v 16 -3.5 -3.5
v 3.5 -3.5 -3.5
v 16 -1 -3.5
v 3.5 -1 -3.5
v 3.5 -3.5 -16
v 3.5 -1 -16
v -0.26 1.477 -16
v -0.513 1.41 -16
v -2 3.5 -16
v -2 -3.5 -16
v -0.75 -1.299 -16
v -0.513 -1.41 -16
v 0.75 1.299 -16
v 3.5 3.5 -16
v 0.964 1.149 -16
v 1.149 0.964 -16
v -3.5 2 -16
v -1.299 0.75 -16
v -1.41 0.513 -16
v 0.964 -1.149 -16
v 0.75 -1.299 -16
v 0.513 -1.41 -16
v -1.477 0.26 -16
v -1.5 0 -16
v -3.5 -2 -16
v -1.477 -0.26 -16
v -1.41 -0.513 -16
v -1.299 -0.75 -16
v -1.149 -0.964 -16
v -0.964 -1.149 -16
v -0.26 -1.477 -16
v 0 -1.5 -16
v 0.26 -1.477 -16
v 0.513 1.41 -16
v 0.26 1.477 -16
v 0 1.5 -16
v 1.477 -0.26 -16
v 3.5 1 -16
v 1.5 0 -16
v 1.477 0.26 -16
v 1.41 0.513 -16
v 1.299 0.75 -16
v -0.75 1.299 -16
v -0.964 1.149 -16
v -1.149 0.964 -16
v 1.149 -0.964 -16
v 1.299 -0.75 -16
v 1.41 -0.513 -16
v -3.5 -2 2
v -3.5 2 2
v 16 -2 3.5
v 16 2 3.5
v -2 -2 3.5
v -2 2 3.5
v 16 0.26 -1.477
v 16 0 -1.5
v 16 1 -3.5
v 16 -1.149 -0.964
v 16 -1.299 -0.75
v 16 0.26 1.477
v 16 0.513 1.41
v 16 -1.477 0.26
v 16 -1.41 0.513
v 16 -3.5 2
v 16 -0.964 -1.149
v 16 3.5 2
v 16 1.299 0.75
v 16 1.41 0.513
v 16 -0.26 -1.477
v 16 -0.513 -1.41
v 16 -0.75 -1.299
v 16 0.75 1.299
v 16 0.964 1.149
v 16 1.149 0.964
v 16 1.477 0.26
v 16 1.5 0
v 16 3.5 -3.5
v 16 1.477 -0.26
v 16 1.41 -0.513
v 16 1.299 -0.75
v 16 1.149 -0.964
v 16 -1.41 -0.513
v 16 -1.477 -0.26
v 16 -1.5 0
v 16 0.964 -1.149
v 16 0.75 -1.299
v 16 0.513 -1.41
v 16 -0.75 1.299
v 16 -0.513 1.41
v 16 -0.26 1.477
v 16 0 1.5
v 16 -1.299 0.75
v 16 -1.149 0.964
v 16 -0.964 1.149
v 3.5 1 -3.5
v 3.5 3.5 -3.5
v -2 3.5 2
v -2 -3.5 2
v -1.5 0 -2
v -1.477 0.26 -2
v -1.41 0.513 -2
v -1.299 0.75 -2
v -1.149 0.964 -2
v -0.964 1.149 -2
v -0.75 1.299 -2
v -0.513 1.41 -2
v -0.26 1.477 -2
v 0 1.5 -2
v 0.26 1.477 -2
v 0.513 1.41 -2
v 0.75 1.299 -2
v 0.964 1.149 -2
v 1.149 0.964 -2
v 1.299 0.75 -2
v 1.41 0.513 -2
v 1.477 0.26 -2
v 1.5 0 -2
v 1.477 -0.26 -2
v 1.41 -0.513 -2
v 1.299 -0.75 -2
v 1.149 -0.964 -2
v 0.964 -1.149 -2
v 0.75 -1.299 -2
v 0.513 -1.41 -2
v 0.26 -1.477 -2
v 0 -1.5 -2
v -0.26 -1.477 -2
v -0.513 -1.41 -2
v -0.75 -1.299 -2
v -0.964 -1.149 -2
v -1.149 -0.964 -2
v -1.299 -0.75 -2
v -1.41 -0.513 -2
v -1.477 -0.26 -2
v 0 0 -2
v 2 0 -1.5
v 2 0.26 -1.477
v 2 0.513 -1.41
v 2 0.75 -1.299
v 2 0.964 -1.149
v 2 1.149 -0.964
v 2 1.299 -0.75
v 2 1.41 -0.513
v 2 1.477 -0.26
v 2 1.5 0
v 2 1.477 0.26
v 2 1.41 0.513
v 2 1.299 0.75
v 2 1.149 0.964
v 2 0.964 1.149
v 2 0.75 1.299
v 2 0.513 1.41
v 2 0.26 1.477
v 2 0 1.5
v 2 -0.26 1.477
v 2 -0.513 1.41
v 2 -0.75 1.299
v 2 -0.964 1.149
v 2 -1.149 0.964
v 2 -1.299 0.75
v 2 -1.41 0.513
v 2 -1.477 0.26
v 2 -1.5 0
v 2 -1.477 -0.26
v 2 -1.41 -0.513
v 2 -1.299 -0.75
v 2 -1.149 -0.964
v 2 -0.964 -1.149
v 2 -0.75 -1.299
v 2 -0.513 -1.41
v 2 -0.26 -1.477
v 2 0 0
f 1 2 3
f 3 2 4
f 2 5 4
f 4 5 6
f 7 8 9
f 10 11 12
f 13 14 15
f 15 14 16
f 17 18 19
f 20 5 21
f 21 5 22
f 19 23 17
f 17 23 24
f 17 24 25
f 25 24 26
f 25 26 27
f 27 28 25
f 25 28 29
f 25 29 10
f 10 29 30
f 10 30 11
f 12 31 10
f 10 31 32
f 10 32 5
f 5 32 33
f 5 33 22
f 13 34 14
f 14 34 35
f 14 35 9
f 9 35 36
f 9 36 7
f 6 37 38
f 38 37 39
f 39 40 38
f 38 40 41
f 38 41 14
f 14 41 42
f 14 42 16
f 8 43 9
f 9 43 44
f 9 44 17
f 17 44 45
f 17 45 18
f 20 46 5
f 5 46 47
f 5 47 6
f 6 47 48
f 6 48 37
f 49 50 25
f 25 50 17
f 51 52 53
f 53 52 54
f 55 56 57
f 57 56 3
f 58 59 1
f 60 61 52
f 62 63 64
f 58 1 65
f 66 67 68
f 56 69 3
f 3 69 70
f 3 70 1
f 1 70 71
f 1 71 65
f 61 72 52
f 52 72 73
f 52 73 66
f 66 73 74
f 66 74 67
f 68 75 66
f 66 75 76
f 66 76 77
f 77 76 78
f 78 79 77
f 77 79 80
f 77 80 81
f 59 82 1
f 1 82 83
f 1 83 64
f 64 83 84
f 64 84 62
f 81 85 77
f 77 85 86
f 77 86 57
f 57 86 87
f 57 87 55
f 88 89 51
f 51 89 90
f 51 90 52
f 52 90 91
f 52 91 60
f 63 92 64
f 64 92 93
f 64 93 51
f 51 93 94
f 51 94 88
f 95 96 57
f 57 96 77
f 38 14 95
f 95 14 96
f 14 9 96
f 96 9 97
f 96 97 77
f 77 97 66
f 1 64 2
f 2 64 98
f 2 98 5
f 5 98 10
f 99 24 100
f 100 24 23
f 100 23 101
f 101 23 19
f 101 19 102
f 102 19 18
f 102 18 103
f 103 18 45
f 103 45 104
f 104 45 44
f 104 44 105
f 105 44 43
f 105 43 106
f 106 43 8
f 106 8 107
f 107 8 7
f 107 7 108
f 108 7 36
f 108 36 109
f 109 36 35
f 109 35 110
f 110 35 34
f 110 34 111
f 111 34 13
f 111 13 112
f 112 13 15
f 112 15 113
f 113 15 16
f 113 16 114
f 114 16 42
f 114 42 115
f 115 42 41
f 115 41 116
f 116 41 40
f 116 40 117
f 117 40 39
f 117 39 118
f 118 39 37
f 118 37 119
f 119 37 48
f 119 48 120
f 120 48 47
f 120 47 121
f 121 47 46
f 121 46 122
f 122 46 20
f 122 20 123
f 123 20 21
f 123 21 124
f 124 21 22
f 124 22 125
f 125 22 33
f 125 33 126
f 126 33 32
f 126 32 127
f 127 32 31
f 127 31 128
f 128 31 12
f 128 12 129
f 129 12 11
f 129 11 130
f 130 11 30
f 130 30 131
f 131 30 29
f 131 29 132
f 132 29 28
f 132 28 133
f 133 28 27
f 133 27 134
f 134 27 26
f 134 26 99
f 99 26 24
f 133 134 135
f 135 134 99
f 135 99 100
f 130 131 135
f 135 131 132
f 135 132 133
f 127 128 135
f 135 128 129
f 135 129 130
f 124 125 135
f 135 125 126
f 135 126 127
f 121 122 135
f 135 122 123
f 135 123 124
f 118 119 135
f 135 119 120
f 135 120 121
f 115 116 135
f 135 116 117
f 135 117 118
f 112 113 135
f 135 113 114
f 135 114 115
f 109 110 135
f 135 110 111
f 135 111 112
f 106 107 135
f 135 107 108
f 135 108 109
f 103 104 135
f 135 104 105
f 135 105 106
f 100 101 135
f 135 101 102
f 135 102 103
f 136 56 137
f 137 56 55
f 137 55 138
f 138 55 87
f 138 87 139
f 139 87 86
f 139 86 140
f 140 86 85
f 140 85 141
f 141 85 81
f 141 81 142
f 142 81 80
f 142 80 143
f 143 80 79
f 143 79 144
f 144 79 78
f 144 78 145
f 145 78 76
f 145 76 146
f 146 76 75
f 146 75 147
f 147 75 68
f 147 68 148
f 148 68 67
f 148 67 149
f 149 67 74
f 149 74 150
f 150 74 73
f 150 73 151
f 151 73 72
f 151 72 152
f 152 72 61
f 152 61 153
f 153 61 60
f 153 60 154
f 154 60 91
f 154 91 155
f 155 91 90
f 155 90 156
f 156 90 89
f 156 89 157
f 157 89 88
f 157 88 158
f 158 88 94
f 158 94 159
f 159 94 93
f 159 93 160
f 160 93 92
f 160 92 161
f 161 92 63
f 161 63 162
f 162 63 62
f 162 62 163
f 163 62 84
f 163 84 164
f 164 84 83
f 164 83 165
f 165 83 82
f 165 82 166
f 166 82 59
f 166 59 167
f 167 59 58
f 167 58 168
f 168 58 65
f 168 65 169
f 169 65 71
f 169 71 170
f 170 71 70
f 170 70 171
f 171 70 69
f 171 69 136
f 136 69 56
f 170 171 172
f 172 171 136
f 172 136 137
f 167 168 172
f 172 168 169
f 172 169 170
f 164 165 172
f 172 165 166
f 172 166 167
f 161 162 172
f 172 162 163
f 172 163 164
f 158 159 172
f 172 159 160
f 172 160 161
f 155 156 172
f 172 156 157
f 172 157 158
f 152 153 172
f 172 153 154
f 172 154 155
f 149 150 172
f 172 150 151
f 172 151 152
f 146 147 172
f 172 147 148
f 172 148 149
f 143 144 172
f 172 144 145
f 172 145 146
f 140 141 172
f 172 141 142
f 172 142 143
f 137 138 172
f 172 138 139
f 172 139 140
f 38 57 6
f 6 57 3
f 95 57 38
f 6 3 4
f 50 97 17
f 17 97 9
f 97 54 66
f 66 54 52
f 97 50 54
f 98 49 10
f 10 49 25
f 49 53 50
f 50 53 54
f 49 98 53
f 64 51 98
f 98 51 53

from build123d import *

# Parameters (mm, degrees)
BOSS_EXTRUDE1_DEPTH = 3.5
SKETCH2_R           = 1.5
CUT_EXTRUDE1_DEPTH  = 14
SKETCH3_R           = 1.5
CUT_EXTRUDE2_DEPTH  = 14
BOSS_EXTRUDE2_DEPTH = 1
CHAMFER1_SIZE       = 1.5


with BuildPart() as part:
    # Sketch1 → Boss-Extrude1 (new, symmetric)
    with BuildSketch(Plane(origin=(0, 0, 0), x_dir=(1, 0, 0), z_dir=(0, 1, 0))):
        Polygon((-3.5, 16), (-3.5, -3.5), (16, -3.5), (16, 3.5), (3.5, 3.5), (3.5, 16), align=None)
    extrude(amount=BOSS_EXTRUDE1_DEPTH, both=True)

    # Sketch2 → Cut-Extrude1 (cut)
    with BuildSketch(Plane(origin=(0, 0, -16), x_dir=(-1, 0, 0), z_dir=(0, 0, -1))):
        Circle(SKETCH2_R)
    extrude(amount=-CUT_EXTRUDE1_DEPTH, mode=Mode.SUBTRACT)

    # Sketch3 → Cut-Extrude2 (cut)
    with BuildSketch(Plane(origin=(16, 0, 0), x_dir=(0, 0, -1), z_dir=(1, 0, 0))):
        Circle(SKETCH3_R)
    extrude(amount=-CUT_EXTRUDE2_DEPTH, mode=Mode.SUBTRACT)

    # Sketch4 → Boss-Extrude2 (add, symmetric)
    with BuildSketch(Plane(origin=(0, 0, 0), x_dir=(1, 0, 0), z_dir=(0, 1, 0))):
        Polygon((3.5, 16), (16, 3.5), (3.5, 3.5), align=None)
    extrude(amount=BOSS_EXTRUDE2_DEPTH, both=True)

    # Chamfer1
    chamfer1_edges = [part.edges().sort_by_distance(p)[0] for p in [
        (-3.5, 0, 3.5),
        (6.25, 3.5, 3.5),
        (6.25, -3.5, 3.5),
        (-3.5, -3.5, -6.25),
        (-3.5, 3.5, -6.25),
    ]]
    chamfer(chamfer1_edges, length=CHAMFER1_SIZE)


solid = part.part
